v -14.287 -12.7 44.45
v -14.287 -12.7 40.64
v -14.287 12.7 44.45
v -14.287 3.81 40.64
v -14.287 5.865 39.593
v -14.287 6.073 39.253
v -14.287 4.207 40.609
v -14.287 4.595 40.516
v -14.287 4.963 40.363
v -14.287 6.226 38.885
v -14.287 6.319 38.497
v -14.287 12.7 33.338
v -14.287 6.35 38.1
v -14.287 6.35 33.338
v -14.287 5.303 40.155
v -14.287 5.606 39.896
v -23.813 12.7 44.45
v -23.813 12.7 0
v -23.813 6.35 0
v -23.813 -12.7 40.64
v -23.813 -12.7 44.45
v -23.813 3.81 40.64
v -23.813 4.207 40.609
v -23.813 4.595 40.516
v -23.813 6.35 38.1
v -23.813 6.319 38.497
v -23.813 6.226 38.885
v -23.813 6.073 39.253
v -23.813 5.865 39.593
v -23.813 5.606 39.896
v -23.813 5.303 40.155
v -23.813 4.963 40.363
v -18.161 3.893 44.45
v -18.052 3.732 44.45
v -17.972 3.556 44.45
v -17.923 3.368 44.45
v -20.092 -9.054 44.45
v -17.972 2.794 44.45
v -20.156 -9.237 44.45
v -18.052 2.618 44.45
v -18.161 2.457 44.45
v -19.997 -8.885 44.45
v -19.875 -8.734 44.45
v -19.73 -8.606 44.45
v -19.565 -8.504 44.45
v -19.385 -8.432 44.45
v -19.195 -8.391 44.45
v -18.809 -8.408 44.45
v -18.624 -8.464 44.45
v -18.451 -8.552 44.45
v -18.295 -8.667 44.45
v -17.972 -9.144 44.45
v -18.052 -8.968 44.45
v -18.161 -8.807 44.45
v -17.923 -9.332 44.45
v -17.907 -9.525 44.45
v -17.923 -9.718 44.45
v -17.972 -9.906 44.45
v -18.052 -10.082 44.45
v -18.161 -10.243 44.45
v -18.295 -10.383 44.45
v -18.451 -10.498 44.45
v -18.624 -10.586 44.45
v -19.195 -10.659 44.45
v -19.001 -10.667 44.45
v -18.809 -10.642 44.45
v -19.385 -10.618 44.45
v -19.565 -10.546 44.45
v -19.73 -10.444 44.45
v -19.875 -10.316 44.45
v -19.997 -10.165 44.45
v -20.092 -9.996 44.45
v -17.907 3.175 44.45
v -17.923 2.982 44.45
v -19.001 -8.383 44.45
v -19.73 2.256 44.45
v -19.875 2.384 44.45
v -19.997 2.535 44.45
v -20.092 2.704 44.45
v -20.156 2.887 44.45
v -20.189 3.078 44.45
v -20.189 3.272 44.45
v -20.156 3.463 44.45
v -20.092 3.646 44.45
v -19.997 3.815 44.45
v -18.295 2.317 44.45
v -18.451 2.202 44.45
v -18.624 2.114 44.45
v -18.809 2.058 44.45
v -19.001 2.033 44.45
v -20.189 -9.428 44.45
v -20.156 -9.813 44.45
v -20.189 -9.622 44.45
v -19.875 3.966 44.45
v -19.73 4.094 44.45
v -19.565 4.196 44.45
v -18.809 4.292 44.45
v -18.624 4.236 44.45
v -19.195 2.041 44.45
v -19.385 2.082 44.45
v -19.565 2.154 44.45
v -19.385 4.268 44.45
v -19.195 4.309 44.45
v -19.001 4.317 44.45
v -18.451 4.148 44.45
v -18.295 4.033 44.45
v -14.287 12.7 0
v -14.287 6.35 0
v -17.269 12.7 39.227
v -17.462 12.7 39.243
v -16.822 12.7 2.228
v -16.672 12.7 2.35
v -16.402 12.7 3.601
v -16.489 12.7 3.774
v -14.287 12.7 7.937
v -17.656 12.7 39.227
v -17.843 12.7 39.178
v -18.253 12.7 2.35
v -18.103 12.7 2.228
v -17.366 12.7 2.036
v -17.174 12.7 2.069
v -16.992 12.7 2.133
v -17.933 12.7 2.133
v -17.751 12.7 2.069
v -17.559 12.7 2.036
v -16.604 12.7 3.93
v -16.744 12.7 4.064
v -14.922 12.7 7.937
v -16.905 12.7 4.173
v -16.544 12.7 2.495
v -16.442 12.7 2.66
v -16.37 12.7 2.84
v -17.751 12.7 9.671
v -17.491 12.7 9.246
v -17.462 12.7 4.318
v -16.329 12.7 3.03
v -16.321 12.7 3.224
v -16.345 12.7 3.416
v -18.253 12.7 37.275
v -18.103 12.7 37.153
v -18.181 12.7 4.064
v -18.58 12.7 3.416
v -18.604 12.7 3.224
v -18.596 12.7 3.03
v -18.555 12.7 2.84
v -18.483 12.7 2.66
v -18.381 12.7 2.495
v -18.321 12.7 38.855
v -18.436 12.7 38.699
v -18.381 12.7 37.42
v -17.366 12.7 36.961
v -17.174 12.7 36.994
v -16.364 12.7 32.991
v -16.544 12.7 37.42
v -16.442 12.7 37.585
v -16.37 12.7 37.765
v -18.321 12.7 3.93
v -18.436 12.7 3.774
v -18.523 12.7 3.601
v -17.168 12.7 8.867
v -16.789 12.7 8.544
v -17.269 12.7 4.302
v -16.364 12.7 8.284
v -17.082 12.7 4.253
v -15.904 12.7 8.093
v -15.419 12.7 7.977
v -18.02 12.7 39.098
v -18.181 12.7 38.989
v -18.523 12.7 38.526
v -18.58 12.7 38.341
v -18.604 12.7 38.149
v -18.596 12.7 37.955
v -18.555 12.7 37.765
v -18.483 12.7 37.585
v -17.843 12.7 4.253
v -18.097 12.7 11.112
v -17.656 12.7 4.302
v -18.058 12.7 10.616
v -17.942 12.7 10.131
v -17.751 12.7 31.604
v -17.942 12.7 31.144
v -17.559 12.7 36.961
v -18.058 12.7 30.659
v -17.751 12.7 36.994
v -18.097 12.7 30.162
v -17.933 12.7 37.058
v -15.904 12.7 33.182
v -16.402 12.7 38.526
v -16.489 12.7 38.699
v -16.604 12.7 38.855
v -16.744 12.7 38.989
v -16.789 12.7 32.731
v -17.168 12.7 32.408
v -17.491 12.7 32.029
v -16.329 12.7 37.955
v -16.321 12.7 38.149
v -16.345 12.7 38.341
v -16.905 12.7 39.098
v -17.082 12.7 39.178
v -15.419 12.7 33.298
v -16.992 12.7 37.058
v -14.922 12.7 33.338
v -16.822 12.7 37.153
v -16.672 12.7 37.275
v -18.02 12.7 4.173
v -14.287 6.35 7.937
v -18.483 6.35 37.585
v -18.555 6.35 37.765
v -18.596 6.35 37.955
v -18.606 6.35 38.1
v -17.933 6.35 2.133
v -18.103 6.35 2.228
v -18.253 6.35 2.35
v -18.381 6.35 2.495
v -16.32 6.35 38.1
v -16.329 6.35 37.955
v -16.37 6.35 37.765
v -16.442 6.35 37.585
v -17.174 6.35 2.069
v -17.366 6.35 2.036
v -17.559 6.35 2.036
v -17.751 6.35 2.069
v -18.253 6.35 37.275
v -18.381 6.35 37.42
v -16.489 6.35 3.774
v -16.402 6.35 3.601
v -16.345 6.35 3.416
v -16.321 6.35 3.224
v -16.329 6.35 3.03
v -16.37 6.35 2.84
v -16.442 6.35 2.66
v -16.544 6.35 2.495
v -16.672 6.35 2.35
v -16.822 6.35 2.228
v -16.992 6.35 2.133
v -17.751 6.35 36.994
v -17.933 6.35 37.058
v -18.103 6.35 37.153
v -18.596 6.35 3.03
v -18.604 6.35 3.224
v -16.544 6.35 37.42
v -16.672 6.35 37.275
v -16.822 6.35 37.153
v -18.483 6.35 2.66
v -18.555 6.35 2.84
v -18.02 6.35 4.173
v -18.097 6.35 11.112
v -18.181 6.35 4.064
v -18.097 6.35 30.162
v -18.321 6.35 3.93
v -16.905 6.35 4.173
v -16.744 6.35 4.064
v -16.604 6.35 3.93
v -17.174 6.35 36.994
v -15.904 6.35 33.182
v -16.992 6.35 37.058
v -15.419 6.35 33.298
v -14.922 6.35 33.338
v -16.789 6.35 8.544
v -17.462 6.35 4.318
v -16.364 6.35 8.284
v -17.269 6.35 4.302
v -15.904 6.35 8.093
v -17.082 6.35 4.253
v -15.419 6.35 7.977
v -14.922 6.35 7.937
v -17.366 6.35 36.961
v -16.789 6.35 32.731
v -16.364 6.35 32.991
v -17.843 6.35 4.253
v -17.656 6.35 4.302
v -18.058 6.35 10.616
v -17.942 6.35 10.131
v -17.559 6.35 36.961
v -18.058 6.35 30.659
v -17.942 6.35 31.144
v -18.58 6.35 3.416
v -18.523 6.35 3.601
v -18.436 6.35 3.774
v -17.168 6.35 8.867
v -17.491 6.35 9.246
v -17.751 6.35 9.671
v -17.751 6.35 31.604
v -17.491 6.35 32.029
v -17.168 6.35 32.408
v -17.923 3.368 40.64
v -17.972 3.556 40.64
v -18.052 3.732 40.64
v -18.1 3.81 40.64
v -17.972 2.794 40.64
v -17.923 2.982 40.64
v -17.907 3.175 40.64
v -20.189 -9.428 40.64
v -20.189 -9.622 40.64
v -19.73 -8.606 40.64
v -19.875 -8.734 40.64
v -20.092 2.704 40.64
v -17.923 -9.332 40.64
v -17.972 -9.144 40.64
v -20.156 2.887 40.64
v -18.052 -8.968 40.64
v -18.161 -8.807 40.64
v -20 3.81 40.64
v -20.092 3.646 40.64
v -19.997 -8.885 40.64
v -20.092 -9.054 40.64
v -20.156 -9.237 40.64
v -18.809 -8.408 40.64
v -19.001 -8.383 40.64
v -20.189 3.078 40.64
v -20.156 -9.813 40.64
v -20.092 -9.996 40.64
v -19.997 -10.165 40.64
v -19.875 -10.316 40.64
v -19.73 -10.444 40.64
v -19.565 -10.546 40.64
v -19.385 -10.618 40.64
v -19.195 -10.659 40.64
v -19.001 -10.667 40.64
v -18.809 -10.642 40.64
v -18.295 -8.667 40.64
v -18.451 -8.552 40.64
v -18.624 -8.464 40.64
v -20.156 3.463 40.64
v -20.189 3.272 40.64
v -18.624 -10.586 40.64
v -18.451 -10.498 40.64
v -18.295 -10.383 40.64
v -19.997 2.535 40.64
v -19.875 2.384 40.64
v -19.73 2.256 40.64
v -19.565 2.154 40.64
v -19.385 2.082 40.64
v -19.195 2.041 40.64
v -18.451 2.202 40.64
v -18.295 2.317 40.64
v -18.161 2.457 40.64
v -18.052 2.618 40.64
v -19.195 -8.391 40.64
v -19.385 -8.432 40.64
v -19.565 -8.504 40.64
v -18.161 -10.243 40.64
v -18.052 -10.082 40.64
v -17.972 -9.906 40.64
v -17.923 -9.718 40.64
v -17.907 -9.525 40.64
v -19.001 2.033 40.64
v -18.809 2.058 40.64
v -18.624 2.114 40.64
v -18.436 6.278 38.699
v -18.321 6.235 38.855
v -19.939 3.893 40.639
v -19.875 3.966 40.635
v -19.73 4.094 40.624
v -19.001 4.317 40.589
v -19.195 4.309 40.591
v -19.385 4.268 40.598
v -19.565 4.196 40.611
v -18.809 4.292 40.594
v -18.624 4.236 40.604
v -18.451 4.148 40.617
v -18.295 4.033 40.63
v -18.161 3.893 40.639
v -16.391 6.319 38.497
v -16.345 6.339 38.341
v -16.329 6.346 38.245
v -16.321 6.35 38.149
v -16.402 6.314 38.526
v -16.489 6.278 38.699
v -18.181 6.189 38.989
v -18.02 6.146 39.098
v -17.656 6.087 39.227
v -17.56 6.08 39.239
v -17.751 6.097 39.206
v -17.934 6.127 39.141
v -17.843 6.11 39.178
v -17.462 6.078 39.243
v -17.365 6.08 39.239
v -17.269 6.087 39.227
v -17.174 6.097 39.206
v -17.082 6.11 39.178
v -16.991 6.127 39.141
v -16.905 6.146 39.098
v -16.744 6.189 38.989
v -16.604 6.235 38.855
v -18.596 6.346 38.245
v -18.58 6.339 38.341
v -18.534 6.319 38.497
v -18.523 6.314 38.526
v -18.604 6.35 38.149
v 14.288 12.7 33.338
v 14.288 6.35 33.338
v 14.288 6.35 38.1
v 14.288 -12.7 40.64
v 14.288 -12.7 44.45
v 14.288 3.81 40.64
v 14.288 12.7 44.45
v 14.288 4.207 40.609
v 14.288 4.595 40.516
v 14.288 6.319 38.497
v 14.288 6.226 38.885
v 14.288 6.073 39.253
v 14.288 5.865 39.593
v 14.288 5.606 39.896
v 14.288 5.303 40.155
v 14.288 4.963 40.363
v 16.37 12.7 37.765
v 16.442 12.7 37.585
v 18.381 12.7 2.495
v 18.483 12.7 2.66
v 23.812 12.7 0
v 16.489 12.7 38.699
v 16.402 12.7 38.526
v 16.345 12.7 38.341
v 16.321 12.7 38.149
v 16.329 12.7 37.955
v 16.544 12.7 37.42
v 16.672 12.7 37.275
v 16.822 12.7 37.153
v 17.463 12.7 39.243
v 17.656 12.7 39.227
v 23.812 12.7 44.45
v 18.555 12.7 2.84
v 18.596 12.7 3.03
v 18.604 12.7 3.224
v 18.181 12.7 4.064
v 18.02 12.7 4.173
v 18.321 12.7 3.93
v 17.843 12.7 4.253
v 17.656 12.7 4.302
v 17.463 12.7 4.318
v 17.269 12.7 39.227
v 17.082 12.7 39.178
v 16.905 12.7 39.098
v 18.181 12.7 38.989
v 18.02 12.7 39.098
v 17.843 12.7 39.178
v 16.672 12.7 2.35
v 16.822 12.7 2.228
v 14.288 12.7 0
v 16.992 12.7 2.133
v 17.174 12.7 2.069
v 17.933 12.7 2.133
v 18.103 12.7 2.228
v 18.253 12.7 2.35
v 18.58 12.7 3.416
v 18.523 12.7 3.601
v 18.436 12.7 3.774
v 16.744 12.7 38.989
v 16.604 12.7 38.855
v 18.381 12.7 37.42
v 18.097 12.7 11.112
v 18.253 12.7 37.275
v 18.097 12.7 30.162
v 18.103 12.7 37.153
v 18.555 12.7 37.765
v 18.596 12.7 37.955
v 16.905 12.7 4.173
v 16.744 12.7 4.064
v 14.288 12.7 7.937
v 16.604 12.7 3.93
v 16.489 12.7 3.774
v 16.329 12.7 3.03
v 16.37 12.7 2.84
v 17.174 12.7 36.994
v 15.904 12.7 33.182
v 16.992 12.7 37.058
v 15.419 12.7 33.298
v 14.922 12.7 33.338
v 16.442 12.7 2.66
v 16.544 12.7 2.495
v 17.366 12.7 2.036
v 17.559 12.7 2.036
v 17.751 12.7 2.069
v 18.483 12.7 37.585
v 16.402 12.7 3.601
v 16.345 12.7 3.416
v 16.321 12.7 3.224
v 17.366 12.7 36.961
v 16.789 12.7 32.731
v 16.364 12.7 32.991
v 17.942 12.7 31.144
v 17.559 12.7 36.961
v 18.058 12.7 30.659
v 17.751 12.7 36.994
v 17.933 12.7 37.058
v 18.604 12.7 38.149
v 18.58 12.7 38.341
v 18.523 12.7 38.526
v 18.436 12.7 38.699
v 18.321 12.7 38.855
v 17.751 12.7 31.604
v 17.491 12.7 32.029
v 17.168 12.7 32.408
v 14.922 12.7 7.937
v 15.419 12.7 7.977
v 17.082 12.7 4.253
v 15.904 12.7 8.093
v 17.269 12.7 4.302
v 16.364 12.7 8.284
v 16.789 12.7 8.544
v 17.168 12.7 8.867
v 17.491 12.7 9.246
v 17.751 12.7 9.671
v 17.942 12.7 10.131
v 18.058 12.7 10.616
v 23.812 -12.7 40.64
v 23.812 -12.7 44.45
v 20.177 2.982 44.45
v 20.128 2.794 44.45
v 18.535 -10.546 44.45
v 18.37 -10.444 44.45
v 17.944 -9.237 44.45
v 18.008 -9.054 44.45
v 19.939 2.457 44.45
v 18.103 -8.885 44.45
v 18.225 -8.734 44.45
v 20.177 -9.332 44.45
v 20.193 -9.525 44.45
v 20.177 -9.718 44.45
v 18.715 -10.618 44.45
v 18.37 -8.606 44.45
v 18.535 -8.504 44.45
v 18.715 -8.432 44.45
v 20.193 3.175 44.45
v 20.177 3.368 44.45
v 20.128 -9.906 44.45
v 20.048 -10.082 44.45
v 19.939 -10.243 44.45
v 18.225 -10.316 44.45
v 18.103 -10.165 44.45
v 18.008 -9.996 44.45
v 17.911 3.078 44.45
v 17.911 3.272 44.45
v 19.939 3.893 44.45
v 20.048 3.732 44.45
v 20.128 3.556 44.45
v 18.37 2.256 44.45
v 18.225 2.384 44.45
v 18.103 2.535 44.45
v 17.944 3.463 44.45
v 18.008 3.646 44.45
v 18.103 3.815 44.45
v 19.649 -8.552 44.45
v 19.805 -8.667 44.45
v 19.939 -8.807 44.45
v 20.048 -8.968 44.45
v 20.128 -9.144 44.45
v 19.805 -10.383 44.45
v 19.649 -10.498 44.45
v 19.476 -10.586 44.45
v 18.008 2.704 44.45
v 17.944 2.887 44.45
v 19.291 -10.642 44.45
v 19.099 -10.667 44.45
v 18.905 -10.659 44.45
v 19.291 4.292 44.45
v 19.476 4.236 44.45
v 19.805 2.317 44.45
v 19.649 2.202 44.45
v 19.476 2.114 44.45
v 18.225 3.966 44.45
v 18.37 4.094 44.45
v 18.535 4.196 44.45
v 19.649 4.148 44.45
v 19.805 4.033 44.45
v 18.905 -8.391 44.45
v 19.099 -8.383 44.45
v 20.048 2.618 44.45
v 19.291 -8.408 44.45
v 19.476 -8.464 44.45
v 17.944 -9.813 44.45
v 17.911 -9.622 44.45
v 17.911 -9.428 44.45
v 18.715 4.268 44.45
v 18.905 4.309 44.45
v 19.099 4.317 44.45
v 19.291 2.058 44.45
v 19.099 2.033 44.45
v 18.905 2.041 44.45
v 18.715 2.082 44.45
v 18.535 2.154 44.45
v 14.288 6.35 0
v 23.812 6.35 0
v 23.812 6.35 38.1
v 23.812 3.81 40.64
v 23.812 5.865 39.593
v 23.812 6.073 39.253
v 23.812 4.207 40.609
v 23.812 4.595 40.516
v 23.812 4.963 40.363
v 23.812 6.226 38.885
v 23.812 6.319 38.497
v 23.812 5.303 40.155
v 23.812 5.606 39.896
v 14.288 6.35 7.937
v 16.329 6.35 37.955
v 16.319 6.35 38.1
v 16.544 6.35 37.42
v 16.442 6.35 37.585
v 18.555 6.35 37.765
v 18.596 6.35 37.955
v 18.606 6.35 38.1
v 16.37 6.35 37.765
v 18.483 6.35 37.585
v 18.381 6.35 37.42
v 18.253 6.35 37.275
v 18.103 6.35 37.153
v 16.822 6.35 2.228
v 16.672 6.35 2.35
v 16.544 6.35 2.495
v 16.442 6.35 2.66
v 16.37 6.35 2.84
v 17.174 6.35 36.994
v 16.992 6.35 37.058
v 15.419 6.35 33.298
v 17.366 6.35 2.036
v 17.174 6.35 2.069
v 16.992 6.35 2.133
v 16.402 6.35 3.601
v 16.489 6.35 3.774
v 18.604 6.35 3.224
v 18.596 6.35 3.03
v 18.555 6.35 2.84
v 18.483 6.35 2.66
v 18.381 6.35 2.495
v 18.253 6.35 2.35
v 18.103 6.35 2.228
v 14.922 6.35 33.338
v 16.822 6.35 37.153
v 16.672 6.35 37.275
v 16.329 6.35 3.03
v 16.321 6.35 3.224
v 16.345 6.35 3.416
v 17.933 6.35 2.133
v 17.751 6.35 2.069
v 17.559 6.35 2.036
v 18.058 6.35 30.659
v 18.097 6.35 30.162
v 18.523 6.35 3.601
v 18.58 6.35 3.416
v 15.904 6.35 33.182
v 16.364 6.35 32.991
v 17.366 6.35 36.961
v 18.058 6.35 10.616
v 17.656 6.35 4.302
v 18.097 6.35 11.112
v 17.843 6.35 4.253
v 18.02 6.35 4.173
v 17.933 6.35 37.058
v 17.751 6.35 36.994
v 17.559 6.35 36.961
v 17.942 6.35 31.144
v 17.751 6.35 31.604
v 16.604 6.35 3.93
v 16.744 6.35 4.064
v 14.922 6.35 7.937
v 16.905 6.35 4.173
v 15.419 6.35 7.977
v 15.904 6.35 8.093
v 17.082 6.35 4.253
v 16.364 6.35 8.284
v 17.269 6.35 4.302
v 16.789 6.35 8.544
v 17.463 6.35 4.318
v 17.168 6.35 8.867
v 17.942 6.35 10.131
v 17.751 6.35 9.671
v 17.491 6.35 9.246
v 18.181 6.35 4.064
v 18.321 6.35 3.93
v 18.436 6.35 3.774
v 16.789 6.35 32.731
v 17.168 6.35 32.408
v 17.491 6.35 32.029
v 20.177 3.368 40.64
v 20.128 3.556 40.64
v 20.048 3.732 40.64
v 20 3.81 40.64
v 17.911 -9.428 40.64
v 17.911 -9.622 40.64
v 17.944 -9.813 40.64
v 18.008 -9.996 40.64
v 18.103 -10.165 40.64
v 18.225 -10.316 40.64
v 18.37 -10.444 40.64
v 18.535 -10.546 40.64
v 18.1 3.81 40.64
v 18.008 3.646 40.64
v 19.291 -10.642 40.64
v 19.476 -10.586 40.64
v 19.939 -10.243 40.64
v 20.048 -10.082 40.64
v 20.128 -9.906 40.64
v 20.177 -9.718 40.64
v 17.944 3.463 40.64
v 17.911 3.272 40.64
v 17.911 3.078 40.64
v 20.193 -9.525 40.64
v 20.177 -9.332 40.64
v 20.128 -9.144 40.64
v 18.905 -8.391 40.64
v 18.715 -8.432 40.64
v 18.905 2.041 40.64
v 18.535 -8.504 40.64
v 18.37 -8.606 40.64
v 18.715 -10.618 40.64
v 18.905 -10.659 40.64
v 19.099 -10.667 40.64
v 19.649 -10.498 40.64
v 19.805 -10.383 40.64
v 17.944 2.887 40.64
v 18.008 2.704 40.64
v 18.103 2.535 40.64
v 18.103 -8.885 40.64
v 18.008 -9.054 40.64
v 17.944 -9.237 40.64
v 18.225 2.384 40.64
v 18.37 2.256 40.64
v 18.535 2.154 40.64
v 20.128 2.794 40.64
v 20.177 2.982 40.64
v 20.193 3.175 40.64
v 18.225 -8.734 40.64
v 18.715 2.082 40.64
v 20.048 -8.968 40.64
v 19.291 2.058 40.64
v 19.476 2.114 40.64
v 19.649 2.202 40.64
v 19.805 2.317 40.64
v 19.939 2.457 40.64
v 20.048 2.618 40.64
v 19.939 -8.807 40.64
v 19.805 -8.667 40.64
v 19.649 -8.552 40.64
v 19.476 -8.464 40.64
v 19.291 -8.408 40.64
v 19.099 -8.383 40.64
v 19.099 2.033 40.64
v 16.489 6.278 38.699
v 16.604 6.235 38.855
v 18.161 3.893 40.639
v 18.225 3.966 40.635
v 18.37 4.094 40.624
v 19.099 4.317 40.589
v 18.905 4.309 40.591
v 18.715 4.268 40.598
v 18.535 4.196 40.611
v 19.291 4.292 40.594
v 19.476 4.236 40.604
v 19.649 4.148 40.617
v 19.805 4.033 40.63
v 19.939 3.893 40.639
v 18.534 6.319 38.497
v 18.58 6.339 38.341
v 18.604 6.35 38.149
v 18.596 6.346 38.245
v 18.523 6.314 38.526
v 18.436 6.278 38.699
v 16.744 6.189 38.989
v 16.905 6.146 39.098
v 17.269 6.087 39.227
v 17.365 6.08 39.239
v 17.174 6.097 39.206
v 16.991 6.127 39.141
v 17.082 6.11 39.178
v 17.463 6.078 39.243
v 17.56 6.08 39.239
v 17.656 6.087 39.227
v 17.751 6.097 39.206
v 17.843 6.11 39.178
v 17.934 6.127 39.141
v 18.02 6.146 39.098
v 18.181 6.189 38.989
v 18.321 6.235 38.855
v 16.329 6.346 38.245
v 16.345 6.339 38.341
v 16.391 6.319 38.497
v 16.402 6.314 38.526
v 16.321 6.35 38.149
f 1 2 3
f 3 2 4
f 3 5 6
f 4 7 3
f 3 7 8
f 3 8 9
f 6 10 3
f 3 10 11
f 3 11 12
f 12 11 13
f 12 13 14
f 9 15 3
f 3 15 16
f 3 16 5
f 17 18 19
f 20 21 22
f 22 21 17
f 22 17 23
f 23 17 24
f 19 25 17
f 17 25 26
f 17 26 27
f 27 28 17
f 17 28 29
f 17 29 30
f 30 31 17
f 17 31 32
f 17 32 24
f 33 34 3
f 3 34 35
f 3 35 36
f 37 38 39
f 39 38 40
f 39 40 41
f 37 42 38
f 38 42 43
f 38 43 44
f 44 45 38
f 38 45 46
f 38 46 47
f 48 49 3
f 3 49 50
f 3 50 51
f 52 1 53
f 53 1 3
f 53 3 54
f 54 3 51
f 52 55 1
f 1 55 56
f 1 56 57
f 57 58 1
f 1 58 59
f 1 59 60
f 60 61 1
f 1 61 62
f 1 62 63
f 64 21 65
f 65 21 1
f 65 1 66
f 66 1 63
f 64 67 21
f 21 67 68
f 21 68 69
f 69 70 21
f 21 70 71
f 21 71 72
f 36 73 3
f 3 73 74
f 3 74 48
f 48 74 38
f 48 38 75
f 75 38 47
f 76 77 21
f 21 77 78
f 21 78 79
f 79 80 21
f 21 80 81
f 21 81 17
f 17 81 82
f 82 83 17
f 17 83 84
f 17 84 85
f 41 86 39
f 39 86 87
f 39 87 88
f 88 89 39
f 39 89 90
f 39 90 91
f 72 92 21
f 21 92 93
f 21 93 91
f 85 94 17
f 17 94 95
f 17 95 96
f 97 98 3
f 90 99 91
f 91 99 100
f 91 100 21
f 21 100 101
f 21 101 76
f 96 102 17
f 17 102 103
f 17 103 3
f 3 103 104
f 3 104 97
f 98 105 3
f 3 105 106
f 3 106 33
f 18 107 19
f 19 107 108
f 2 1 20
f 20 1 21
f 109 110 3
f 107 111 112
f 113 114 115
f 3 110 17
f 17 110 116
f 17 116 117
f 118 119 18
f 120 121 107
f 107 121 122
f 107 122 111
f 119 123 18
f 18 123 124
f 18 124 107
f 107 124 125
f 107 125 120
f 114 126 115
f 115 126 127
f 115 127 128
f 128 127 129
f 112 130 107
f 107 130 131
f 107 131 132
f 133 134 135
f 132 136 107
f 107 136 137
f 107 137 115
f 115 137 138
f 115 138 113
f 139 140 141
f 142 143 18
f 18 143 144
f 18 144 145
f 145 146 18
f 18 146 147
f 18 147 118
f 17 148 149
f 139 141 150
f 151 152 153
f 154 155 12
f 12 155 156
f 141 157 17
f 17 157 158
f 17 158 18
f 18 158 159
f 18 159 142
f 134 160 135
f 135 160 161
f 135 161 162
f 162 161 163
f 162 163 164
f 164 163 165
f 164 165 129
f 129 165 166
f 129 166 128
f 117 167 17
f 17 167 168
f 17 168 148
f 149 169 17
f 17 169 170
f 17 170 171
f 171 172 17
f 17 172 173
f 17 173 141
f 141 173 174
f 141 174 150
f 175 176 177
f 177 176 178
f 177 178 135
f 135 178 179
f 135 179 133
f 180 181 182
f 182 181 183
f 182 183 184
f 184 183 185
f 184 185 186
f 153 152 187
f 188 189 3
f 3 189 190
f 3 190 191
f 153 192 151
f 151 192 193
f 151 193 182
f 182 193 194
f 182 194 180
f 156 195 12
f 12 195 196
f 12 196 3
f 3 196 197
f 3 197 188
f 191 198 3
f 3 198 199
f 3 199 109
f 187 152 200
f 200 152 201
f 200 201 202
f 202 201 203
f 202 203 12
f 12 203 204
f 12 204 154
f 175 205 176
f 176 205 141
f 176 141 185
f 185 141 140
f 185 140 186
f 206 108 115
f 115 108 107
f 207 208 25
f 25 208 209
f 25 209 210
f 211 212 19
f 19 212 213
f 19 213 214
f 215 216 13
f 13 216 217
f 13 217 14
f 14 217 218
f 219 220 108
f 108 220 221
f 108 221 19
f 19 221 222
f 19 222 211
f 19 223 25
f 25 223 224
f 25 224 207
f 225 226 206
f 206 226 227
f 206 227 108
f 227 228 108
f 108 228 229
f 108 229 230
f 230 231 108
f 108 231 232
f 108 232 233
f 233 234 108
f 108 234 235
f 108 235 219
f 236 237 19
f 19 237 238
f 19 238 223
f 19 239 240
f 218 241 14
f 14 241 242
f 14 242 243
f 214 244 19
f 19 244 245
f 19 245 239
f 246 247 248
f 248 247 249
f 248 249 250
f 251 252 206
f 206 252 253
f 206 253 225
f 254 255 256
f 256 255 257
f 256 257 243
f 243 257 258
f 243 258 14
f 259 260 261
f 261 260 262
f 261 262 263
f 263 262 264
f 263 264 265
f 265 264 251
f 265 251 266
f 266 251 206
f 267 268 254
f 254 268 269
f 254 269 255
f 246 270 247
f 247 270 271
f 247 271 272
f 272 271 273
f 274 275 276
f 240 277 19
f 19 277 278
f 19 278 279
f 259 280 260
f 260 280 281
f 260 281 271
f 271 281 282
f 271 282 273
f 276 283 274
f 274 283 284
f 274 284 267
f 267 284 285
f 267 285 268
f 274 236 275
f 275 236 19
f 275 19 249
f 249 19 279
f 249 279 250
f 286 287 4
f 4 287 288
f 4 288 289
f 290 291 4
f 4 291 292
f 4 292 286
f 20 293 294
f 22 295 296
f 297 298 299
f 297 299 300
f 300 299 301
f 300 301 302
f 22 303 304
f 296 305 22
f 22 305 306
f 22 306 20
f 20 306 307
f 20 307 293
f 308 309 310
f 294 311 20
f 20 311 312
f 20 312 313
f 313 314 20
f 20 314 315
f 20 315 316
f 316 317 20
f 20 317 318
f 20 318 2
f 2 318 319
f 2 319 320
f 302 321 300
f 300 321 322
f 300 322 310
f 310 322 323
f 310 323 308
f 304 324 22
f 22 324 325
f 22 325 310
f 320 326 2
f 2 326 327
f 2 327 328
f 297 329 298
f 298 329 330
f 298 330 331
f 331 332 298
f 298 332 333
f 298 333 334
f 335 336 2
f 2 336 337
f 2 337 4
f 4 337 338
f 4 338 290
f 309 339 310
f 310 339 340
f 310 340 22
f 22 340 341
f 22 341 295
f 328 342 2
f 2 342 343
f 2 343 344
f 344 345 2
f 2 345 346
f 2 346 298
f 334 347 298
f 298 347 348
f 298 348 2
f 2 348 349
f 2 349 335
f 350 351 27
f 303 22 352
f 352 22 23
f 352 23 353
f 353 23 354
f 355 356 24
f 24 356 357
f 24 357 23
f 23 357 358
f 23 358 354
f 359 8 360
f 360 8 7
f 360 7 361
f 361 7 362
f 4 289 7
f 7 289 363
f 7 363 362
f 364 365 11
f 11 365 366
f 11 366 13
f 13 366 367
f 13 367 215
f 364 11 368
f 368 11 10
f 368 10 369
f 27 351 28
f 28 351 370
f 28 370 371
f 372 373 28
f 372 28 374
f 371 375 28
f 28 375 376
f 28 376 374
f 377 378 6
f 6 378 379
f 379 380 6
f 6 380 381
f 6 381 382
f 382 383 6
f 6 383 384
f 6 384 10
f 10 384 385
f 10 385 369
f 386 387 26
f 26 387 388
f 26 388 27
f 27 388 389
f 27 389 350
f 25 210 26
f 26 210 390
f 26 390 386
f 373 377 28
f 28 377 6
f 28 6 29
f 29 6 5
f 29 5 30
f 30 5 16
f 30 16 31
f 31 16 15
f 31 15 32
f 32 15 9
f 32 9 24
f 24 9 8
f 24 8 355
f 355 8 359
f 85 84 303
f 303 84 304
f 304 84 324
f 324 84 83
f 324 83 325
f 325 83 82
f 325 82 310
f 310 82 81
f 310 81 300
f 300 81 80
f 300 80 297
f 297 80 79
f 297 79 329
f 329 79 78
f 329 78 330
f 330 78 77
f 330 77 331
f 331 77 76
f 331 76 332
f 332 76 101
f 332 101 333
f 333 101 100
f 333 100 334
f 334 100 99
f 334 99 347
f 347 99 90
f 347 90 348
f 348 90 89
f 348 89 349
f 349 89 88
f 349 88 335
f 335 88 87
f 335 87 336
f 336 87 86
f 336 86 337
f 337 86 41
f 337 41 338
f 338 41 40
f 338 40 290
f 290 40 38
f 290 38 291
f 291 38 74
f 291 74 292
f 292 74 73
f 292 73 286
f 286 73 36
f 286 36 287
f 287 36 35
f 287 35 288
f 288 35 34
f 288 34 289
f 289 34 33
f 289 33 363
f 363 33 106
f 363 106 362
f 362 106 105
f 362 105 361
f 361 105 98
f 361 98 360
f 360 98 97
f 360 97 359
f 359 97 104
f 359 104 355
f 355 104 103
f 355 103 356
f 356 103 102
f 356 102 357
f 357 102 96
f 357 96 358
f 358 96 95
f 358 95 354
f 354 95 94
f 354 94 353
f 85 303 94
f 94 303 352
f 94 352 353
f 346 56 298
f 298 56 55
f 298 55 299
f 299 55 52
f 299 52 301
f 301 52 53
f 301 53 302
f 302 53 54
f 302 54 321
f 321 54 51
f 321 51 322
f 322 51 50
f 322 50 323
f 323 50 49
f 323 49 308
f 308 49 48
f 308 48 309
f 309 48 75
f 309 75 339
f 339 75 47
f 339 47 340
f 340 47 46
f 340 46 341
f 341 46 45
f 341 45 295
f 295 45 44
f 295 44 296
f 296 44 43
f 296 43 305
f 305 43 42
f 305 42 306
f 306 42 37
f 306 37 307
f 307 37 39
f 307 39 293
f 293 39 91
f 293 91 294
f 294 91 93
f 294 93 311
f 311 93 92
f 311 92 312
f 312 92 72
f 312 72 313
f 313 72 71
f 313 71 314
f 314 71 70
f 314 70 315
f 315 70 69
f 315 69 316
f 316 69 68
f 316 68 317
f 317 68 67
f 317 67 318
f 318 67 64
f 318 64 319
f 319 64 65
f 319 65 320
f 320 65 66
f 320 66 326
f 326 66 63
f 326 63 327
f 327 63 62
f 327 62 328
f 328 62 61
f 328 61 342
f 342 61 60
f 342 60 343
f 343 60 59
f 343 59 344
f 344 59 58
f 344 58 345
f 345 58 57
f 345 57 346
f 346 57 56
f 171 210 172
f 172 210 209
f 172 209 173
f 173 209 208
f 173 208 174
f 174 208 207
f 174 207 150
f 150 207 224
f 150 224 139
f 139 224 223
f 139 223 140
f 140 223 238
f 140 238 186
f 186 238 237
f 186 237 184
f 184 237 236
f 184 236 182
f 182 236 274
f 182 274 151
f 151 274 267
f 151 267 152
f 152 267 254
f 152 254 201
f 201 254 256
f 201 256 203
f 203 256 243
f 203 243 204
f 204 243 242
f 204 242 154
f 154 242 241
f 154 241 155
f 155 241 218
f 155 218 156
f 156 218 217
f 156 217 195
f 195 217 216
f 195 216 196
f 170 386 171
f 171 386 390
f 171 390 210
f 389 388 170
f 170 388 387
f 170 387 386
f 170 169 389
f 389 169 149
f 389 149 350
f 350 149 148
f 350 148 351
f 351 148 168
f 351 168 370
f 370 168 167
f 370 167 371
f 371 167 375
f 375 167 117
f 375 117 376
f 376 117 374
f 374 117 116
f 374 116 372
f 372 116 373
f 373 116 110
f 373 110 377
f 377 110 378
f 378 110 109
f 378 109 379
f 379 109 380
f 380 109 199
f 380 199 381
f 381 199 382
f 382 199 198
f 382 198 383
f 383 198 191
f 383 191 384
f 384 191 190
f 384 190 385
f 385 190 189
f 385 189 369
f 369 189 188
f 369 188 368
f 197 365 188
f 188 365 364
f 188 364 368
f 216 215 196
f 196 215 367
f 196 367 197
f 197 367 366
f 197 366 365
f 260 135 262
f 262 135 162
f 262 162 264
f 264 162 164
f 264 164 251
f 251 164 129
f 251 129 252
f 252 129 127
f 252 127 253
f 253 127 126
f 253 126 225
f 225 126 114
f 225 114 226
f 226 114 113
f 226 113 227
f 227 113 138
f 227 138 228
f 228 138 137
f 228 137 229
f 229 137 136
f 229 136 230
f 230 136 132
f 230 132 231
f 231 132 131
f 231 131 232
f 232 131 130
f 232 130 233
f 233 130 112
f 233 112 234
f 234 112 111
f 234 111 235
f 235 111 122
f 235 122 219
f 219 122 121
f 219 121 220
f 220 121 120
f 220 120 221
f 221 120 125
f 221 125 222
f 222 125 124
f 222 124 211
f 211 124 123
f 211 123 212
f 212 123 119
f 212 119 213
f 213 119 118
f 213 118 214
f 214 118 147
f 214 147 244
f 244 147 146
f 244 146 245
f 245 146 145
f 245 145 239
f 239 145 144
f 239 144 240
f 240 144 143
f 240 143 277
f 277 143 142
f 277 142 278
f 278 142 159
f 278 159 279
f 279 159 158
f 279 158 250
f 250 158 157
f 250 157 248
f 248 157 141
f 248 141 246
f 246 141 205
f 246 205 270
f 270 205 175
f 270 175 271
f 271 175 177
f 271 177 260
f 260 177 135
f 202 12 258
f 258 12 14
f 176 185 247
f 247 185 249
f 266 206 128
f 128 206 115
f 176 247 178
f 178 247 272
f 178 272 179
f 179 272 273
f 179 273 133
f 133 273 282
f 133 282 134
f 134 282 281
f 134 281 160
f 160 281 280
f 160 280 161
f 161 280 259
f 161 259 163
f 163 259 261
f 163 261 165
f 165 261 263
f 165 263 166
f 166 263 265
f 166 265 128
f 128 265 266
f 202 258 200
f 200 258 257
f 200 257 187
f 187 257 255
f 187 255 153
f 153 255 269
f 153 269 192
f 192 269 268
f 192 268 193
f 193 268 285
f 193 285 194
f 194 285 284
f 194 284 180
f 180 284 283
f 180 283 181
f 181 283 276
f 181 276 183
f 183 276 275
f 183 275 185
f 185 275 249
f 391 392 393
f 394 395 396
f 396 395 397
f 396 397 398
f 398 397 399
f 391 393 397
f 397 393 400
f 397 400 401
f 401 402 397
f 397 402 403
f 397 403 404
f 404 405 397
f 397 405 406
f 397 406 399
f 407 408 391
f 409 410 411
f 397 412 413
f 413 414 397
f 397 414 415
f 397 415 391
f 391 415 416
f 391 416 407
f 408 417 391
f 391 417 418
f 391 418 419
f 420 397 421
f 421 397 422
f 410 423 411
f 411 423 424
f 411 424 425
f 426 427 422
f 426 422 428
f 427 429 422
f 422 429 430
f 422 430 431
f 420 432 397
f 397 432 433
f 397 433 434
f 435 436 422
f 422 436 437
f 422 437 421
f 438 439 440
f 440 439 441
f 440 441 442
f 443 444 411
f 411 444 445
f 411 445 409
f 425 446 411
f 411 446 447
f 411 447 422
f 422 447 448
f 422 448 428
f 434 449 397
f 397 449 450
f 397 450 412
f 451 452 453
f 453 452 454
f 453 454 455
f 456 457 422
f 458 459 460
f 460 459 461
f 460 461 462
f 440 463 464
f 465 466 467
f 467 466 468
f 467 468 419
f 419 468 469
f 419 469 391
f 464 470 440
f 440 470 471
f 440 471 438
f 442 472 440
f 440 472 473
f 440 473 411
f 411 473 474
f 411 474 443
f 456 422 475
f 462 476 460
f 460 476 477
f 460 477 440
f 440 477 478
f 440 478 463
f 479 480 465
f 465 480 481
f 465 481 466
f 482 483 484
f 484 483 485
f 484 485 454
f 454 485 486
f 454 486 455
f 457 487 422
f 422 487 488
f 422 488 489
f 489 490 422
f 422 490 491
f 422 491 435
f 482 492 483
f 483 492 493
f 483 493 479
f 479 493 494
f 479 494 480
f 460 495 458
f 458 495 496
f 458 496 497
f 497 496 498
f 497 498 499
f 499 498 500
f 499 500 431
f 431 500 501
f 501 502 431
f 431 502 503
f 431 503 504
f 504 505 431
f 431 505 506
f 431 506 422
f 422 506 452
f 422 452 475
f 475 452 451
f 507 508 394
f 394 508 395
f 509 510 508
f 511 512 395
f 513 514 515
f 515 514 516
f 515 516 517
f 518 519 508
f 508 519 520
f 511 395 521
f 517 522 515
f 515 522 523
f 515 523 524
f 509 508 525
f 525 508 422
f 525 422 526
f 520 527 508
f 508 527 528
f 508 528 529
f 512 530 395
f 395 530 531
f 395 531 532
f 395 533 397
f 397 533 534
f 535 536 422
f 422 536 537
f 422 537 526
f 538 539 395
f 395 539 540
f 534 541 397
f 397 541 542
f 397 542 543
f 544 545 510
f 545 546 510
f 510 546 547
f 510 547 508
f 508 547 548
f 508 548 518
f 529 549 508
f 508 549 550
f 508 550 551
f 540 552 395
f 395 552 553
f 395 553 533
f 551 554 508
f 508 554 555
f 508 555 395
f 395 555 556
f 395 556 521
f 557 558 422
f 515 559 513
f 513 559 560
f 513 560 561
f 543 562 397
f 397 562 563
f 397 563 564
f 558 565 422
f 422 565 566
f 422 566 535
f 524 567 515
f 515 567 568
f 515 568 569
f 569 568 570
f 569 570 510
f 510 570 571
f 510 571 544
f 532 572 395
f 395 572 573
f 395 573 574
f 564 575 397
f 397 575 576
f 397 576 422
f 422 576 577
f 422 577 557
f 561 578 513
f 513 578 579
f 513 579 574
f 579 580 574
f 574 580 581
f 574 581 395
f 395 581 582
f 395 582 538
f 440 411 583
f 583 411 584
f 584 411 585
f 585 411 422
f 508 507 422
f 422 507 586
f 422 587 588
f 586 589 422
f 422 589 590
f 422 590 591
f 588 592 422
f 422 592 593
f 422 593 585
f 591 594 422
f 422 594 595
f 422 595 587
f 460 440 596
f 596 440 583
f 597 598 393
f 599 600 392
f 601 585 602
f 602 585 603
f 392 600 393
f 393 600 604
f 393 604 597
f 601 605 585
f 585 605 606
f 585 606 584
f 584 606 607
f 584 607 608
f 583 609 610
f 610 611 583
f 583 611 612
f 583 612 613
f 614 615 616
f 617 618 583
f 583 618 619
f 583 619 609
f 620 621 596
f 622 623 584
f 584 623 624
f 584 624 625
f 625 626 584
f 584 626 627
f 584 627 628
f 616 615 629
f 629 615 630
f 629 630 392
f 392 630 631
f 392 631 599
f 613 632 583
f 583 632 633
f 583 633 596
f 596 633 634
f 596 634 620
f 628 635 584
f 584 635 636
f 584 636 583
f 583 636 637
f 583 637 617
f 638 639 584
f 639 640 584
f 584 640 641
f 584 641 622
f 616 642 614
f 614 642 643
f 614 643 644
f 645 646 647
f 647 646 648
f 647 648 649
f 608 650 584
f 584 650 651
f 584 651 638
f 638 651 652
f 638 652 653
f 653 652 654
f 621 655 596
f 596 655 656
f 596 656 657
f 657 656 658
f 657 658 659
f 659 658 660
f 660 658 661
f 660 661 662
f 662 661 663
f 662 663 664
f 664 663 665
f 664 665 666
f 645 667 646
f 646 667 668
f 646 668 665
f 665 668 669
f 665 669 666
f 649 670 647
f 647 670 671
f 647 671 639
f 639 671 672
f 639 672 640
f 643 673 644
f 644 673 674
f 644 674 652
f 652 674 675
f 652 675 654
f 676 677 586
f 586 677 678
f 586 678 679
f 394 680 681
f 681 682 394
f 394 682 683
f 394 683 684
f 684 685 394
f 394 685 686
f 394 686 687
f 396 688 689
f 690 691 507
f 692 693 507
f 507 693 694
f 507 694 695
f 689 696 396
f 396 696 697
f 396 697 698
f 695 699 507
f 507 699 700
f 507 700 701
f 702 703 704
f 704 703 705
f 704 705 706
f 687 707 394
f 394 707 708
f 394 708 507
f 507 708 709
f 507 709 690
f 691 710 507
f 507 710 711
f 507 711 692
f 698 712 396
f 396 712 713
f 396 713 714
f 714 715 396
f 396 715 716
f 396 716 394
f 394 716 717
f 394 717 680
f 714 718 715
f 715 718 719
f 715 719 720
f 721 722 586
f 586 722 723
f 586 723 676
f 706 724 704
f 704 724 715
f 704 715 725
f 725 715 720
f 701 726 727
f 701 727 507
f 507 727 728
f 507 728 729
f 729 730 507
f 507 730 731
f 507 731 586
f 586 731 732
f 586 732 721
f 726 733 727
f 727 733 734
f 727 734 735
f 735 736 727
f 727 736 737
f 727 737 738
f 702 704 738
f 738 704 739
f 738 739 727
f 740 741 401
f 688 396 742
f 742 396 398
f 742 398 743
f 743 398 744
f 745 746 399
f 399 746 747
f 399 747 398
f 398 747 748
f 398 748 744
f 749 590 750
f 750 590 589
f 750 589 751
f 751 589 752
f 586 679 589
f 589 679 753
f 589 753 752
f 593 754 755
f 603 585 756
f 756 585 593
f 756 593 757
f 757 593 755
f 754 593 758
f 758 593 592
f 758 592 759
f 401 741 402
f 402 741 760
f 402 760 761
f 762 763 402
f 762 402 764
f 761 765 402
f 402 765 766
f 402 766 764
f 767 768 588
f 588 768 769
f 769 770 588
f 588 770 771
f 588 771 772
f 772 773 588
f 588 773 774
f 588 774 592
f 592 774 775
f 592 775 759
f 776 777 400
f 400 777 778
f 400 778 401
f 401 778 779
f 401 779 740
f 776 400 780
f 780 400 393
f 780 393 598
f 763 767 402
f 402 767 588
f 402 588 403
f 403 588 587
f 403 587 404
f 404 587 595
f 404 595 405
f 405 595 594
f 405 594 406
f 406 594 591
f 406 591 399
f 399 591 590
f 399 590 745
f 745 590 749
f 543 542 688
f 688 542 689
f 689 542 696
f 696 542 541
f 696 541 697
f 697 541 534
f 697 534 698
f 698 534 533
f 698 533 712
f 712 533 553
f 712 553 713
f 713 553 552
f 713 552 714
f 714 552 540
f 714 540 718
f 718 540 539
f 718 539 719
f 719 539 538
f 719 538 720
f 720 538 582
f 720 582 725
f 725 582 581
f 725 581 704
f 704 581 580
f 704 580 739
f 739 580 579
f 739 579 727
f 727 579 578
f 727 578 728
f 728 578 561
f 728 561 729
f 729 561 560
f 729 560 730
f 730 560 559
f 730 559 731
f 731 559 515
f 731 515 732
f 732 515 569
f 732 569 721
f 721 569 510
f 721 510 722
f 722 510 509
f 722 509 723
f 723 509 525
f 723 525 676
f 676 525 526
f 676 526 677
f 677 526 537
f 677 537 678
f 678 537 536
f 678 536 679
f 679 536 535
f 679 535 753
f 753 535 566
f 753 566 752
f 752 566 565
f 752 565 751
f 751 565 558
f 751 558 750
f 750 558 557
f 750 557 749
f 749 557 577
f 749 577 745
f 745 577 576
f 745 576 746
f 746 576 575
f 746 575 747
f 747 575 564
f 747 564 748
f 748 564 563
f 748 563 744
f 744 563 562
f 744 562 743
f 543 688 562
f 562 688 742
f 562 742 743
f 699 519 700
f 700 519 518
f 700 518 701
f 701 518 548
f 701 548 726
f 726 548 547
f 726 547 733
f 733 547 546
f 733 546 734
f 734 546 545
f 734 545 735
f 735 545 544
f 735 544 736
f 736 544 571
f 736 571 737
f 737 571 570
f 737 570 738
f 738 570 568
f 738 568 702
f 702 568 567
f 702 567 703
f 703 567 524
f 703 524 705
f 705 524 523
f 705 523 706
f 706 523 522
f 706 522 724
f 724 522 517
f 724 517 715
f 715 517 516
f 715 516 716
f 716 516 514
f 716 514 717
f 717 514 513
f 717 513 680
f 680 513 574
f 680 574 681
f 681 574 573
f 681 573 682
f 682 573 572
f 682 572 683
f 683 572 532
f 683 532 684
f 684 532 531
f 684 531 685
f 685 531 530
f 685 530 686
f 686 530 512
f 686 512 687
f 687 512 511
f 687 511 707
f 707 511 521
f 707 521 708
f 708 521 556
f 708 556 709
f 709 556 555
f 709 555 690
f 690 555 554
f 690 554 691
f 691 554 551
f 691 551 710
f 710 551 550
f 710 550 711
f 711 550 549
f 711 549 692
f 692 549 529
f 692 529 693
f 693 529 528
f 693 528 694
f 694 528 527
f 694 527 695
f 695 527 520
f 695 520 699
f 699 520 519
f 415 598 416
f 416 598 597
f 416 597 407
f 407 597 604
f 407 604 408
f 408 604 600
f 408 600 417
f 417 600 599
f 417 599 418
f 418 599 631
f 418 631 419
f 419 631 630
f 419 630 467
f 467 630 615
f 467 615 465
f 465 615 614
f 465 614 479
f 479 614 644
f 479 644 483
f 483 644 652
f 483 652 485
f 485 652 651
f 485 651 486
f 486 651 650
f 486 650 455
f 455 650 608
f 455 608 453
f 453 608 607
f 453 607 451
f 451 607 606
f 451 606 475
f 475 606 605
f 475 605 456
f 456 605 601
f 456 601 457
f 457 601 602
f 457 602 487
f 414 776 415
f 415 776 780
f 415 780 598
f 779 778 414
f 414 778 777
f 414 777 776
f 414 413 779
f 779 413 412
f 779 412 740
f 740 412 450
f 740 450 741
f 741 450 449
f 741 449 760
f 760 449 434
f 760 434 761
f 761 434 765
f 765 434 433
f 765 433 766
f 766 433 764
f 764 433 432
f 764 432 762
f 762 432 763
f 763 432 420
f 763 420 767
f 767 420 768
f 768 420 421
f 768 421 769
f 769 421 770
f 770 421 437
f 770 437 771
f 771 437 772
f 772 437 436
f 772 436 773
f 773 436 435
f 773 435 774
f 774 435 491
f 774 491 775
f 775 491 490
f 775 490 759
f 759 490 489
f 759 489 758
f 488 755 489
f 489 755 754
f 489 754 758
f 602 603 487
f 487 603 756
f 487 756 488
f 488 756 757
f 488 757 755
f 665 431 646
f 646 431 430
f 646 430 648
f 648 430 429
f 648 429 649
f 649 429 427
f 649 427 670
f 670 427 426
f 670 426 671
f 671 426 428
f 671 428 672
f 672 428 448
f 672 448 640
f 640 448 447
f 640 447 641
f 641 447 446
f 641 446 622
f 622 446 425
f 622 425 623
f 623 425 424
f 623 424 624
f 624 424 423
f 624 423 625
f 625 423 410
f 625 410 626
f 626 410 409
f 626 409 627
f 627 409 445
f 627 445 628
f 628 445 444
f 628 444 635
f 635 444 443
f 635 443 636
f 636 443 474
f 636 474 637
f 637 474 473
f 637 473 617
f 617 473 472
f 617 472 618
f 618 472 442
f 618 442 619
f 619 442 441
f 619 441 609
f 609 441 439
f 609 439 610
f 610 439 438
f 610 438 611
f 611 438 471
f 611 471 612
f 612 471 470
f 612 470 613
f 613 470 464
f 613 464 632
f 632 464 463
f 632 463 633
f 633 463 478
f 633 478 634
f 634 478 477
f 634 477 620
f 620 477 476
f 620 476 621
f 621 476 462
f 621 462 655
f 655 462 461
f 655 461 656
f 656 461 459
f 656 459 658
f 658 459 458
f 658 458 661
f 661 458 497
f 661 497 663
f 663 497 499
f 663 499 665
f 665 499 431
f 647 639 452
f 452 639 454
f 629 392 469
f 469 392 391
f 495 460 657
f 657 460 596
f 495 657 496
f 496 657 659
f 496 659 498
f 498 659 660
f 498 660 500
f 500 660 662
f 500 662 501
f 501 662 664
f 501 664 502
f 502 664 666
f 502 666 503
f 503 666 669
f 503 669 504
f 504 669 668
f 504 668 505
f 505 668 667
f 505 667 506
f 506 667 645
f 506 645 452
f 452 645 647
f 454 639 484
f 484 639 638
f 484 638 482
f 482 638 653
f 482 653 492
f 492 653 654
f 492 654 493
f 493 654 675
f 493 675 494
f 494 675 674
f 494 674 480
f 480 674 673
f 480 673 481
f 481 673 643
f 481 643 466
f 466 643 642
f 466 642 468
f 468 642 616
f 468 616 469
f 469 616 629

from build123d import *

# Parameters (mm, degrees)
SKETCH2_W           = 47.625
SKETCH2_H           = 25.4
BOSS_EXTRUDE1_DEPTH = 44.45
SKETCH3_W           = 28.575
SKETCH3_H           = 44.45
CUT_EXTRUDE1_DEPTH  = 26.4
SKETCH4_W           = 40.64
SKETCH4_H           = 19.05
CUT_EXTRUDE2_DEPTH  = 48.625
FILLET1_R           = 2.54
FILLET2_R           = 2.54
SKETCH5_R           = 1.143
CUT_EXTRUDE3_DEPTH  = 45.45
SKETCH6_R           = 1.143
CUT_EXTRUDE4_DEPTH  = 45.45
SKETCH7_R           = 1.143
CUT_EXTRUDE5_DEPTH  = 10.16
SKETCH8_W           = 36.195
SKETCH8_H           = 25.4
CUT_EXTRUDE6_DEPTH  = 26.4
FILLET3_R           = 3.175
FILLET4_R           = 3.175


with BuildPart() as part:
    # Sketch2 → Boss-Extrude1 (new body)
    with BuildSketch(Plane.XY):
        Rectangle(SKETCH2_W, SKETCH2_H)
    extrude(amount=BOSS_EXTRUDE1_DEPTH)

    # Sketch3 → Cut-Extrude1 (cut, through all)
    with BuildSketch(Plane(origin=(0, 12.7, 0), x_dir=(1, 0, 0), z_dir=(0, 1, 0))):
        with Locations((0, -22.225)):
            Rectangle(SKETCH3_W, SKETCH3_H)
    extrude(amount=-CUT_EXTRUDE1_DEPTH, mode=Mode.SUBTRACT)

    # Sketch4 → Cut-Extrude2 (cut, through all)
    with BuildSketch(Plane.ZY.offset(23.8125)):
        with Locations((20.32, -3.175)):
            Rectangle(SKETCH4_W, SKETCH4_H)
    extrude(amount=-CUT_EXTRUDE2_DEPTH, mode=Mode.SUBTRACT)

    # Fillet1
    fillet1_edges = [part.edges().sort_by_distance(p)[0] for p in [
        (19.05, 6.35, 40.64),
    ]]
    fillet(fillet1_edges, radius=FILLET1_R)

    # Fillet2
    fillet2_edges = [part.edges().sort_by_distance(p)[0] for p in [
        (-19.05, 6.35, 40.64),
    ]]
    fillet(fillet2_edges, radius=FILLET2_R)

    # Sketch5 → Cut-Extrude3 (cut, through all)
    with BuildSketch(Plane.XY.offset(44.45)):
        with Locations((-19.05, -9.525)):
            Circle(SKETCH5_R)
        with Locations((-19.05, 3.175)):
            Circle(SKETCH5_R)
    extrude(amount=-CUT_EXTRUDE3_DEPTH, mode=Mode.SUBTRACT)

    # Sketch6 → Cut-Extrude4 (cut, through all)
    with BuildSketch(Plane.XY.offset(44.45)):
        with Locations((19.05, -9.525)):
            Circle(SKETCH6_R)
        with Locations((19.05, 3.175)):
            Circle(SKETCH6_R)
    extrude(amount=-CUT_EXTRUDE4_DEPTH, mode=Mode.SUBTRACT)

    # Sketch7 → Cut-Extrude5 (cut)
    with BuildSketch(Plane(origin=(0, 12.7, 0), x_dir=(1, 0, 0), z_dir=(0, 1, 0))):
        with Locations((-17.4625, -38.1)):
            Circle(SKETCH7_R)
        with Locations((17.4625, -38.1)):
            Circle(SKETCH7_R)
        with Locations((-17.4625, -3.175)):
            Circle(SKETCH7_R)
        with Locations((17.4625, -3.175)):
            Circle(SKETCH7_R)
    extrude(amount=-CUT_EXTRUDE5_DEPTH, mode=Mode.SUBTRACT)

    # Sketch8 → Cut-Extrude6 (cut, through all)
    with BuildSketch(Plane(origin=(0, 12.7, 0), x_dir=(1, 0, 0), z_dir=(0, 1, 0))):
        with Locations((0, -20.6375)):
            Rectangle(SKETCH8_W, SKETCH8_H)
    extrude(amount=-CUT_EXTRUDE6_DEPTH, mode=Mode.SUBTRACT)

    # Fillet3
    fillet3_edges = [part.edges().sort_by_distance(p)[0] for p in [
        (-18.0975, 9.525, 33.3375),
        (-18.0975, 9.525, 7.9375),
    ]]
    fillet(fillet3_edges, radius=FILLET3_R)

    # Fillet4
    fillet4_edges = [part.edges().sort_by_distance(p)[0] for p in [
        (18.0975, 9.525, 7.9375),
        (18.0975, 9.525, 33.3375),
    ]]
    fillet(fillet4_edges, radius=FILLET4_R)


solid = part.part
